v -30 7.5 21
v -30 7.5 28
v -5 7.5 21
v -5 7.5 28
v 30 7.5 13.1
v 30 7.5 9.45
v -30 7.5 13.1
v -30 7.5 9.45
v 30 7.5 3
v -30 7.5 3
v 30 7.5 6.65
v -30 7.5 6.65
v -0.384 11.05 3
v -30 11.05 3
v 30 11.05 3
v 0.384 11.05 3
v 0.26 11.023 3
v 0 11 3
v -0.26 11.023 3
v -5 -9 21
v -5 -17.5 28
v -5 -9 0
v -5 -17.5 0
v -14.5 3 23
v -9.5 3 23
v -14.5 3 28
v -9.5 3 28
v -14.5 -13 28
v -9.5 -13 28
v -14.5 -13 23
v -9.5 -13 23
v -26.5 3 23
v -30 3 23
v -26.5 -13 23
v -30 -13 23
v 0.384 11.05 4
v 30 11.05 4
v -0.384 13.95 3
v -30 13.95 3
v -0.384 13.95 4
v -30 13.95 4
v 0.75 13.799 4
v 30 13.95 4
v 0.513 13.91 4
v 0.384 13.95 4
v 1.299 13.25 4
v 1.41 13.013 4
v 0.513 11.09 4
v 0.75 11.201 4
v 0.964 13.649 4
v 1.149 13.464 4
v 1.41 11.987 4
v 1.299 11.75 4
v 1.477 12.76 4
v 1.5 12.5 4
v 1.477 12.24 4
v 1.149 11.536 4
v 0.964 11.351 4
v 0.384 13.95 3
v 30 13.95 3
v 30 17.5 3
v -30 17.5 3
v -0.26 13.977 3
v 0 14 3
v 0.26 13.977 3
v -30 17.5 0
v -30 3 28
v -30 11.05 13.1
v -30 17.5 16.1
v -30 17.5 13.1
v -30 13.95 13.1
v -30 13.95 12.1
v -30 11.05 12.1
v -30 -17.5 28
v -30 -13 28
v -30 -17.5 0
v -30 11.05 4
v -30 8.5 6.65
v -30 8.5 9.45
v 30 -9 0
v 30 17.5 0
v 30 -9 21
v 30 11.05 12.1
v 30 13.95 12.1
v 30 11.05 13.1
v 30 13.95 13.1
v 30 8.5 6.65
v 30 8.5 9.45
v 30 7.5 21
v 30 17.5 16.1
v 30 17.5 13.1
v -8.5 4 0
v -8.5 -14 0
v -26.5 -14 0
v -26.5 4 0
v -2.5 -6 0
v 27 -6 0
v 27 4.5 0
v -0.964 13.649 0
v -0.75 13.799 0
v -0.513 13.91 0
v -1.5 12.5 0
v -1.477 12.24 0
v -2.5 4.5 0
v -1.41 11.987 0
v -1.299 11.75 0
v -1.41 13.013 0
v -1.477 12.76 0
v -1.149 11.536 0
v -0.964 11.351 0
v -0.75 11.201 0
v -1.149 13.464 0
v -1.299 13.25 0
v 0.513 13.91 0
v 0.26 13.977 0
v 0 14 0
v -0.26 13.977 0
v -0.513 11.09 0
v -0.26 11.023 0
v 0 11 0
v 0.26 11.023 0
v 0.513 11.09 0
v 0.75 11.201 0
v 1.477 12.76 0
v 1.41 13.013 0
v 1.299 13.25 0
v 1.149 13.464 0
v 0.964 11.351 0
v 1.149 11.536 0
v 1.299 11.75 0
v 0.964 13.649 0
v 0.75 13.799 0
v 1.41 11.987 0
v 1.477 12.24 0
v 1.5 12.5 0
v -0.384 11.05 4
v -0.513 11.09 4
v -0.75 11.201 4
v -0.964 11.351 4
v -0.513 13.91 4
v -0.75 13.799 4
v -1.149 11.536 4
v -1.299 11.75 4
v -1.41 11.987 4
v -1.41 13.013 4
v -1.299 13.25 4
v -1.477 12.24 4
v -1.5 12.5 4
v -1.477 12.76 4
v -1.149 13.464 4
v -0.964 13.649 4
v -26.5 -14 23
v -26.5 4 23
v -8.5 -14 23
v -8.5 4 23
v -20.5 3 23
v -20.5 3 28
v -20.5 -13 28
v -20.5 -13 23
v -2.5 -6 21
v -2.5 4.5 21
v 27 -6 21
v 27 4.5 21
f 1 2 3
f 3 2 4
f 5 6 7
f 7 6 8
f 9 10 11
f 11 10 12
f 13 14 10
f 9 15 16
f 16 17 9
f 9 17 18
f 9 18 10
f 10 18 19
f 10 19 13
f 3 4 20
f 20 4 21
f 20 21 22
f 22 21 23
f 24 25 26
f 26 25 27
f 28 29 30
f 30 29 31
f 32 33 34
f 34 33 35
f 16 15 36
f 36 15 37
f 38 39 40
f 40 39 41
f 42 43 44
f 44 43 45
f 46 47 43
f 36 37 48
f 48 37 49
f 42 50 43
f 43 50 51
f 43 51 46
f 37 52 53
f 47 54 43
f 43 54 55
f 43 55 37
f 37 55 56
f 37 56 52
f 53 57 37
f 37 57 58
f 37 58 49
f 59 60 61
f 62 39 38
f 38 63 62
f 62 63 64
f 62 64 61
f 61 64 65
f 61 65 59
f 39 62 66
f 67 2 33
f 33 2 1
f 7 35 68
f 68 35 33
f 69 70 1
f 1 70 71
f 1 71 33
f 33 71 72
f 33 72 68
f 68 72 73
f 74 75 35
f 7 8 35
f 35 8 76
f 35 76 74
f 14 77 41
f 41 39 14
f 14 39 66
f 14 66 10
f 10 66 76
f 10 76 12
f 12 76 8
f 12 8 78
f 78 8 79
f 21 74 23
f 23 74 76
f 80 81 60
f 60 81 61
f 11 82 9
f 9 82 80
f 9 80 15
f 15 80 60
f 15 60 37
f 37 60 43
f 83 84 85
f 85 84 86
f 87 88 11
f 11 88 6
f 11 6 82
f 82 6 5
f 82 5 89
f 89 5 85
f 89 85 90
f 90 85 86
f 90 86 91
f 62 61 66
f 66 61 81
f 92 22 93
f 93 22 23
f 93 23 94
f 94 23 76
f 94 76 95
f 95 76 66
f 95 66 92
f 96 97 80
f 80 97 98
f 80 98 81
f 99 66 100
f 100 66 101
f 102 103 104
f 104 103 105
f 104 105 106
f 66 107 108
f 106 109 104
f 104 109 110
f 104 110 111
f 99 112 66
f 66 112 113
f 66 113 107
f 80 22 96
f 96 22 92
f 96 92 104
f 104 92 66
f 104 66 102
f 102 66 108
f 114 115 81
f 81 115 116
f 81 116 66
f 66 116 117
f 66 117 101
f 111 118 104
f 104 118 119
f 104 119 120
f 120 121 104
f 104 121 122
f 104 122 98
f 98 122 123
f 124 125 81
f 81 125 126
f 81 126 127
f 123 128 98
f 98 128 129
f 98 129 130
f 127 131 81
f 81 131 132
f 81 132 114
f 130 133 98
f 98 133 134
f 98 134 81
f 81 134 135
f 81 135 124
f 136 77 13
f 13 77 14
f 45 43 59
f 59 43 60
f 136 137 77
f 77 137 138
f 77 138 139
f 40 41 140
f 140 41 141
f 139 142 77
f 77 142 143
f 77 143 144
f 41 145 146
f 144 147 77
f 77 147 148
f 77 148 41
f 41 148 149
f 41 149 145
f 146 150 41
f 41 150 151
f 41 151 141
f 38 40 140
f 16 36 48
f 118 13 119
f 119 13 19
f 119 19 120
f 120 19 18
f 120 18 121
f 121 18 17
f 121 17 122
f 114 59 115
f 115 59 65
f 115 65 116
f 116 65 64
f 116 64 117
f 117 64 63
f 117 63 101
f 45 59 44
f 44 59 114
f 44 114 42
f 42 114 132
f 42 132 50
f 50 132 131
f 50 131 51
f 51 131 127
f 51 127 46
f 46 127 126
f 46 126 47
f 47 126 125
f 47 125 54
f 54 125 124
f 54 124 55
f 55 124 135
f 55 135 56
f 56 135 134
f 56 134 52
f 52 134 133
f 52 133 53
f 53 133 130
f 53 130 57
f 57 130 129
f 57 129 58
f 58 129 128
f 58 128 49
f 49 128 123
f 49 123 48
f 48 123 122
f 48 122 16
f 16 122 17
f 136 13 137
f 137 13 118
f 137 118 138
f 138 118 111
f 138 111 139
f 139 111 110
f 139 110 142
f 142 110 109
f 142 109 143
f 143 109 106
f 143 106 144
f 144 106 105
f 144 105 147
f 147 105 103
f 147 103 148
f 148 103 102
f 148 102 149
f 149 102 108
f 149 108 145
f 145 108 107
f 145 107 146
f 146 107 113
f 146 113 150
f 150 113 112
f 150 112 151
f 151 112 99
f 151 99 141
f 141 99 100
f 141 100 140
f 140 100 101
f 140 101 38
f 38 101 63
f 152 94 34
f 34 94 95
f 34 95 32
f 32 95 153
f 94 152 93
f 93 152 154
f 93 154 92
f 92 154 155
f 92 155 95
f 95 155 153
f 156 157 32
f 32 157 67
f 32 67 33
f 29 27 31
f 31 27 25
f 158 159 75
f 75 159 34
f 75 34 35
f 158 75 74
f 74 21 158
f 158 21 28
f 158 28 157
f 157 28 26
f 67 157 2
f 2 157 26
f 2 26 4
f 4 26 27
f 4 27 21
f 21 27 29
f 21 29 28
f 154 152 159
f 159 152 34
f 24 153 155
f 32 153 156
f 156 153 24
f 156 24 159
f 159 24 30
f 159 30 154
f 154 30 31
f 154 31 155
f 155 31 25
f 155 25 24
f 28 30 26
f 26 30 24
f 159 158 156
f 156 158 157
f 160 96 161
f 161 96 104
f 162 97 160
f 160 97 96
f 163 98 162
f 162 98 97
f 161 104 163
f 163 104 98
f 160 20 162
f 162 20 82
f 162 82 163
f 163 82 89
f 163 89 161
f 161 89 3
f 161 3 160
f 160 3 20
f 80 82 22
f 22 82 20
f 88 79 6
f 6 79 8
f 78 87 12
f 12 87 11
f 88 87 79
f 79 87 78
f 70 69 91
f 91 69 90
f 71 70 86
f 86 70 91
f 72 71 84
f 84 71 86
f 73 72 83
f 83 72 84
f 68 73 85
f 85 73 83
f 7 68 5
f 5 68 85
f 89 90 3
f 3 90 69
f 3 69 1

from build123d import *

# Parameters (mm, degrees)
ESQUISSE1_W                    = 60
ESQUISSE1_H                    = 35
MAIN_DEPTH                     = 3
ESQUISSE2_W                    = 60
ESQUISSE2_H                    = 2.9
HORIZONTALMAKERBEAMRAIL1_DEPTH = 1
ESQUISSE3_R                    = 1.5
VERTICALFIXHOLE_DEPTH          = 5
ESQUISSE4_W                    = 25
ESQUISSE4_H                    = 25
ESQUISSE4_W_2                  = 18
ESQUISSE4_H_2                  = 18
URGENCYBUTTON_DEPTH            = 20
ESQUISSE5_W                    = 18
ESQUISSE5_H                    = 18
URGENCYBUTTONHOLE_DEPTH        = 1
URGENCYBUTTONHOLE_DEPTH_BACK   = 24
BOSS_EXTRU_4_DEPTH             = 5
ESQUISSE7_W                    = 6
ESQUISSE7_H                    = 25
BOSS_EXTRU_5_DEPTH             = 5
ESQUISSE8_W                    = 29.5
ESQUISSE8_H                    = 10.5
SWITCHHOLE_DEPTH               = 29
ESQUISSE10_W                   = 35
ESQUISSE10_H                   = 16.5
ESQUISSE10_W_2                 = 29.5
ESQUISSE10_H_2                 = 10.5
BOSS_EXTRU_6_DEPTH             = 18
ESQUISSE11_W                   = 35
ESQUISSE11_H                   = 8.5
ENL_V_MAT_EXTRU_4_DEPTH        = 4
ESQUISSE12_W                   = 60
ESQUISSE12_H                   = 2.8
BOSS_EXTRU_7_DEPTH             = 1
BOSS_EXTRU_8_DEPTH             = 60
BOSS_EXTRU_9_DEPTH             = 60


with BuildPart() as part:
    # Esquisse1 → Main (new body)
    with BuildSketch(Plane.XY):
        Rectangle(ESQUISSE1_W, ESQUISSE1_H)
    extrude(amount=MAIN_DEPTH)

    # Esquisse2 → HorizontalMakerBeamRail1 (add)
    with BuildSketch(Plane.XY.offset(3)):
        with Locations((0, 12.5)):
            Rectangle(ESQUISSE2_W, ESQUISSE2_H)
    extrude(amount=HORIZONTALMAKERBEAMRAIL1_DEPTH)

    # Esquisse3 → VerticalFixHole (cut, through all)
    with BuildSketch(Plane(origin=(0, 0, 0), x_dir=(-1, 0, 0), z_dir=(0, 0, -1))):
        with Locations((0, 12.5)):
            Circle(ESQUISSE3_R)
    extrude(amount=-VERTICALFIXHOLE_DEPTH, mode=Mode.SUBTRACT)

    # Esquisse4 → UrgencyButton (add)
    with BuildSketch(Plane.XY.offset(3)):
        with Locations((-17.5, -5)):
            Rectangle(ESQUISSE4_W, ESQUISSE4_H)
        with Locations((-17.5, -5)):
            Rectangle(ESQUISSE4_W_2, ESQUISSE4_H_2, mode=Mode.SUBTRACT)
    extrude(amount=URGENCYBUTTON_DEPTH)

    # Esquisse5 → UrgencyButtonHole (cut, two sides)
    with BuildSketch(Plane.XY.offset(23)) as urgencybuttonhole_sk:
        with Locations((-17.5, -5)):
            Rectangle(ESQUISSE5_W, ESQUISSE5_H)
    extrude(amount=URGENCYBUTTONHOLE_DEPTH, mode=Mode.SUBTRACT)
    extrude(urgencybuttonhole_sk.sketch, amount=-URGENCYBUTTONHOLE_DEPTH_BACK, mode=Mode.SUBTRACT)

    # Esquisse6 → Boss.-Extru.4 (add)
    with BuildSketch(Plane.XY.offset(23)):
        Polygon((-30, -17.5), (-5, -17.5), (-5, 7.5), (-30, 7.5), (-30, 3), (-9.5, 3), (-9.5, -13), (-30, -13), align=None)
    extrude(amount=BOSS_EXTRU_4_DEPTH)

    # Esquisse7 → Boss.-Extru.5 (add)
    with BuildSketch(Plane.XY.offset(28)):
        with Locations((-17.5, -5)):
            Rectangle(ESQUISSE7_W, ESQUISSE7_H)
    extrude(amount=-BOSS_EXTRU_5_DEPTH)

    # Esquisse8 → SwitchHole (cut, through all)
    with BuildSketch(Plane(origin=(0, 0, 0), x_dir=(-1, 0, 0), z_dir=(0, 0, -1))):
        with Locations((-12.25, -0.75)):
            Rectangle(ESQUISSE8_W, ESQUISSE8_H)
    extrude(amount=-SWITCHHOLE_DEPTH, mode=Mode.SUBTRACT)

    # Esquisse10 → Boss.-Extru.6 (add)
    with BuildSketch(Plane.XY.offset(3)):
        with Locations((12.5, -0.75)):
            Rectangle(ESQUISSE10_W, ESQUISSE10_H)
        with Locations((12.25, -0.75)):
            Rectangle(ESQUISSE10_W_2, ESQUISSE10_H_2, mode=Mode.SUBTRACT)
    extrude(amount=BOSS_EXTRU_6_DEPTH)

    # Esquisse11 → Enlèv. mat.-Extru.4 (cut, through all)
    with BuildSketch(Plane.XY.offset(3)):
        with Locations((12.5, -13.25)):
            Rectangle(ESQUISSE11_W, ESQUISSE11_H)
    extrude(amount=-ENL_V_MAT_EXTRU_4_DEPTH, mode=Mode.SUBTRACT)

    # Esquisse12 → Boss.-Extru.7 (add)
    with BuildSketch(Plane(origin=(0, 7.5, 0), x_dir=(1, 0, 0), z_dir=(0, 1, 0))):
        with Locations((0, -8.05)):
            Rectangle(ESQUISSE12_W, ESQUISSE12_H)
    extrude(amount=BOSS_EXTRU_7_DEPTH)

    # Esquisse13 → Boss.-Extru.8 (add, through all)
    with BuildSketch(Plane(origin=(30, 0, 0), x_dir=(0, 0, -1), z_dir=(1, 0, 0))):
        Polygon((-13.1, 7.5), (-13.1, 11.05), (-12.1, 11.05), (-12.1, 13.95), (-13.1, 13.95), (-13.1, 17.5), (-16.1, 17.5), (-16.1, 7.5), align=None)
    extrude(amount=-BOSS_EXTRU_8_DEPTH)

    # Esquisse14 → Boss.-Extru.9 (add, through all)
    with BuildSketch(Plane(origin=(30, 0, 0), x_dir=(0, 0, -1), z_dir=(1, 0, 0))):
        Polygon((-16.1, 7.5), (-16.1, 17.5), (-21, 7.5), align=None)
    extrude(amount=-BOSS_EXTRU_9_DEPTH)


solid = part.part
